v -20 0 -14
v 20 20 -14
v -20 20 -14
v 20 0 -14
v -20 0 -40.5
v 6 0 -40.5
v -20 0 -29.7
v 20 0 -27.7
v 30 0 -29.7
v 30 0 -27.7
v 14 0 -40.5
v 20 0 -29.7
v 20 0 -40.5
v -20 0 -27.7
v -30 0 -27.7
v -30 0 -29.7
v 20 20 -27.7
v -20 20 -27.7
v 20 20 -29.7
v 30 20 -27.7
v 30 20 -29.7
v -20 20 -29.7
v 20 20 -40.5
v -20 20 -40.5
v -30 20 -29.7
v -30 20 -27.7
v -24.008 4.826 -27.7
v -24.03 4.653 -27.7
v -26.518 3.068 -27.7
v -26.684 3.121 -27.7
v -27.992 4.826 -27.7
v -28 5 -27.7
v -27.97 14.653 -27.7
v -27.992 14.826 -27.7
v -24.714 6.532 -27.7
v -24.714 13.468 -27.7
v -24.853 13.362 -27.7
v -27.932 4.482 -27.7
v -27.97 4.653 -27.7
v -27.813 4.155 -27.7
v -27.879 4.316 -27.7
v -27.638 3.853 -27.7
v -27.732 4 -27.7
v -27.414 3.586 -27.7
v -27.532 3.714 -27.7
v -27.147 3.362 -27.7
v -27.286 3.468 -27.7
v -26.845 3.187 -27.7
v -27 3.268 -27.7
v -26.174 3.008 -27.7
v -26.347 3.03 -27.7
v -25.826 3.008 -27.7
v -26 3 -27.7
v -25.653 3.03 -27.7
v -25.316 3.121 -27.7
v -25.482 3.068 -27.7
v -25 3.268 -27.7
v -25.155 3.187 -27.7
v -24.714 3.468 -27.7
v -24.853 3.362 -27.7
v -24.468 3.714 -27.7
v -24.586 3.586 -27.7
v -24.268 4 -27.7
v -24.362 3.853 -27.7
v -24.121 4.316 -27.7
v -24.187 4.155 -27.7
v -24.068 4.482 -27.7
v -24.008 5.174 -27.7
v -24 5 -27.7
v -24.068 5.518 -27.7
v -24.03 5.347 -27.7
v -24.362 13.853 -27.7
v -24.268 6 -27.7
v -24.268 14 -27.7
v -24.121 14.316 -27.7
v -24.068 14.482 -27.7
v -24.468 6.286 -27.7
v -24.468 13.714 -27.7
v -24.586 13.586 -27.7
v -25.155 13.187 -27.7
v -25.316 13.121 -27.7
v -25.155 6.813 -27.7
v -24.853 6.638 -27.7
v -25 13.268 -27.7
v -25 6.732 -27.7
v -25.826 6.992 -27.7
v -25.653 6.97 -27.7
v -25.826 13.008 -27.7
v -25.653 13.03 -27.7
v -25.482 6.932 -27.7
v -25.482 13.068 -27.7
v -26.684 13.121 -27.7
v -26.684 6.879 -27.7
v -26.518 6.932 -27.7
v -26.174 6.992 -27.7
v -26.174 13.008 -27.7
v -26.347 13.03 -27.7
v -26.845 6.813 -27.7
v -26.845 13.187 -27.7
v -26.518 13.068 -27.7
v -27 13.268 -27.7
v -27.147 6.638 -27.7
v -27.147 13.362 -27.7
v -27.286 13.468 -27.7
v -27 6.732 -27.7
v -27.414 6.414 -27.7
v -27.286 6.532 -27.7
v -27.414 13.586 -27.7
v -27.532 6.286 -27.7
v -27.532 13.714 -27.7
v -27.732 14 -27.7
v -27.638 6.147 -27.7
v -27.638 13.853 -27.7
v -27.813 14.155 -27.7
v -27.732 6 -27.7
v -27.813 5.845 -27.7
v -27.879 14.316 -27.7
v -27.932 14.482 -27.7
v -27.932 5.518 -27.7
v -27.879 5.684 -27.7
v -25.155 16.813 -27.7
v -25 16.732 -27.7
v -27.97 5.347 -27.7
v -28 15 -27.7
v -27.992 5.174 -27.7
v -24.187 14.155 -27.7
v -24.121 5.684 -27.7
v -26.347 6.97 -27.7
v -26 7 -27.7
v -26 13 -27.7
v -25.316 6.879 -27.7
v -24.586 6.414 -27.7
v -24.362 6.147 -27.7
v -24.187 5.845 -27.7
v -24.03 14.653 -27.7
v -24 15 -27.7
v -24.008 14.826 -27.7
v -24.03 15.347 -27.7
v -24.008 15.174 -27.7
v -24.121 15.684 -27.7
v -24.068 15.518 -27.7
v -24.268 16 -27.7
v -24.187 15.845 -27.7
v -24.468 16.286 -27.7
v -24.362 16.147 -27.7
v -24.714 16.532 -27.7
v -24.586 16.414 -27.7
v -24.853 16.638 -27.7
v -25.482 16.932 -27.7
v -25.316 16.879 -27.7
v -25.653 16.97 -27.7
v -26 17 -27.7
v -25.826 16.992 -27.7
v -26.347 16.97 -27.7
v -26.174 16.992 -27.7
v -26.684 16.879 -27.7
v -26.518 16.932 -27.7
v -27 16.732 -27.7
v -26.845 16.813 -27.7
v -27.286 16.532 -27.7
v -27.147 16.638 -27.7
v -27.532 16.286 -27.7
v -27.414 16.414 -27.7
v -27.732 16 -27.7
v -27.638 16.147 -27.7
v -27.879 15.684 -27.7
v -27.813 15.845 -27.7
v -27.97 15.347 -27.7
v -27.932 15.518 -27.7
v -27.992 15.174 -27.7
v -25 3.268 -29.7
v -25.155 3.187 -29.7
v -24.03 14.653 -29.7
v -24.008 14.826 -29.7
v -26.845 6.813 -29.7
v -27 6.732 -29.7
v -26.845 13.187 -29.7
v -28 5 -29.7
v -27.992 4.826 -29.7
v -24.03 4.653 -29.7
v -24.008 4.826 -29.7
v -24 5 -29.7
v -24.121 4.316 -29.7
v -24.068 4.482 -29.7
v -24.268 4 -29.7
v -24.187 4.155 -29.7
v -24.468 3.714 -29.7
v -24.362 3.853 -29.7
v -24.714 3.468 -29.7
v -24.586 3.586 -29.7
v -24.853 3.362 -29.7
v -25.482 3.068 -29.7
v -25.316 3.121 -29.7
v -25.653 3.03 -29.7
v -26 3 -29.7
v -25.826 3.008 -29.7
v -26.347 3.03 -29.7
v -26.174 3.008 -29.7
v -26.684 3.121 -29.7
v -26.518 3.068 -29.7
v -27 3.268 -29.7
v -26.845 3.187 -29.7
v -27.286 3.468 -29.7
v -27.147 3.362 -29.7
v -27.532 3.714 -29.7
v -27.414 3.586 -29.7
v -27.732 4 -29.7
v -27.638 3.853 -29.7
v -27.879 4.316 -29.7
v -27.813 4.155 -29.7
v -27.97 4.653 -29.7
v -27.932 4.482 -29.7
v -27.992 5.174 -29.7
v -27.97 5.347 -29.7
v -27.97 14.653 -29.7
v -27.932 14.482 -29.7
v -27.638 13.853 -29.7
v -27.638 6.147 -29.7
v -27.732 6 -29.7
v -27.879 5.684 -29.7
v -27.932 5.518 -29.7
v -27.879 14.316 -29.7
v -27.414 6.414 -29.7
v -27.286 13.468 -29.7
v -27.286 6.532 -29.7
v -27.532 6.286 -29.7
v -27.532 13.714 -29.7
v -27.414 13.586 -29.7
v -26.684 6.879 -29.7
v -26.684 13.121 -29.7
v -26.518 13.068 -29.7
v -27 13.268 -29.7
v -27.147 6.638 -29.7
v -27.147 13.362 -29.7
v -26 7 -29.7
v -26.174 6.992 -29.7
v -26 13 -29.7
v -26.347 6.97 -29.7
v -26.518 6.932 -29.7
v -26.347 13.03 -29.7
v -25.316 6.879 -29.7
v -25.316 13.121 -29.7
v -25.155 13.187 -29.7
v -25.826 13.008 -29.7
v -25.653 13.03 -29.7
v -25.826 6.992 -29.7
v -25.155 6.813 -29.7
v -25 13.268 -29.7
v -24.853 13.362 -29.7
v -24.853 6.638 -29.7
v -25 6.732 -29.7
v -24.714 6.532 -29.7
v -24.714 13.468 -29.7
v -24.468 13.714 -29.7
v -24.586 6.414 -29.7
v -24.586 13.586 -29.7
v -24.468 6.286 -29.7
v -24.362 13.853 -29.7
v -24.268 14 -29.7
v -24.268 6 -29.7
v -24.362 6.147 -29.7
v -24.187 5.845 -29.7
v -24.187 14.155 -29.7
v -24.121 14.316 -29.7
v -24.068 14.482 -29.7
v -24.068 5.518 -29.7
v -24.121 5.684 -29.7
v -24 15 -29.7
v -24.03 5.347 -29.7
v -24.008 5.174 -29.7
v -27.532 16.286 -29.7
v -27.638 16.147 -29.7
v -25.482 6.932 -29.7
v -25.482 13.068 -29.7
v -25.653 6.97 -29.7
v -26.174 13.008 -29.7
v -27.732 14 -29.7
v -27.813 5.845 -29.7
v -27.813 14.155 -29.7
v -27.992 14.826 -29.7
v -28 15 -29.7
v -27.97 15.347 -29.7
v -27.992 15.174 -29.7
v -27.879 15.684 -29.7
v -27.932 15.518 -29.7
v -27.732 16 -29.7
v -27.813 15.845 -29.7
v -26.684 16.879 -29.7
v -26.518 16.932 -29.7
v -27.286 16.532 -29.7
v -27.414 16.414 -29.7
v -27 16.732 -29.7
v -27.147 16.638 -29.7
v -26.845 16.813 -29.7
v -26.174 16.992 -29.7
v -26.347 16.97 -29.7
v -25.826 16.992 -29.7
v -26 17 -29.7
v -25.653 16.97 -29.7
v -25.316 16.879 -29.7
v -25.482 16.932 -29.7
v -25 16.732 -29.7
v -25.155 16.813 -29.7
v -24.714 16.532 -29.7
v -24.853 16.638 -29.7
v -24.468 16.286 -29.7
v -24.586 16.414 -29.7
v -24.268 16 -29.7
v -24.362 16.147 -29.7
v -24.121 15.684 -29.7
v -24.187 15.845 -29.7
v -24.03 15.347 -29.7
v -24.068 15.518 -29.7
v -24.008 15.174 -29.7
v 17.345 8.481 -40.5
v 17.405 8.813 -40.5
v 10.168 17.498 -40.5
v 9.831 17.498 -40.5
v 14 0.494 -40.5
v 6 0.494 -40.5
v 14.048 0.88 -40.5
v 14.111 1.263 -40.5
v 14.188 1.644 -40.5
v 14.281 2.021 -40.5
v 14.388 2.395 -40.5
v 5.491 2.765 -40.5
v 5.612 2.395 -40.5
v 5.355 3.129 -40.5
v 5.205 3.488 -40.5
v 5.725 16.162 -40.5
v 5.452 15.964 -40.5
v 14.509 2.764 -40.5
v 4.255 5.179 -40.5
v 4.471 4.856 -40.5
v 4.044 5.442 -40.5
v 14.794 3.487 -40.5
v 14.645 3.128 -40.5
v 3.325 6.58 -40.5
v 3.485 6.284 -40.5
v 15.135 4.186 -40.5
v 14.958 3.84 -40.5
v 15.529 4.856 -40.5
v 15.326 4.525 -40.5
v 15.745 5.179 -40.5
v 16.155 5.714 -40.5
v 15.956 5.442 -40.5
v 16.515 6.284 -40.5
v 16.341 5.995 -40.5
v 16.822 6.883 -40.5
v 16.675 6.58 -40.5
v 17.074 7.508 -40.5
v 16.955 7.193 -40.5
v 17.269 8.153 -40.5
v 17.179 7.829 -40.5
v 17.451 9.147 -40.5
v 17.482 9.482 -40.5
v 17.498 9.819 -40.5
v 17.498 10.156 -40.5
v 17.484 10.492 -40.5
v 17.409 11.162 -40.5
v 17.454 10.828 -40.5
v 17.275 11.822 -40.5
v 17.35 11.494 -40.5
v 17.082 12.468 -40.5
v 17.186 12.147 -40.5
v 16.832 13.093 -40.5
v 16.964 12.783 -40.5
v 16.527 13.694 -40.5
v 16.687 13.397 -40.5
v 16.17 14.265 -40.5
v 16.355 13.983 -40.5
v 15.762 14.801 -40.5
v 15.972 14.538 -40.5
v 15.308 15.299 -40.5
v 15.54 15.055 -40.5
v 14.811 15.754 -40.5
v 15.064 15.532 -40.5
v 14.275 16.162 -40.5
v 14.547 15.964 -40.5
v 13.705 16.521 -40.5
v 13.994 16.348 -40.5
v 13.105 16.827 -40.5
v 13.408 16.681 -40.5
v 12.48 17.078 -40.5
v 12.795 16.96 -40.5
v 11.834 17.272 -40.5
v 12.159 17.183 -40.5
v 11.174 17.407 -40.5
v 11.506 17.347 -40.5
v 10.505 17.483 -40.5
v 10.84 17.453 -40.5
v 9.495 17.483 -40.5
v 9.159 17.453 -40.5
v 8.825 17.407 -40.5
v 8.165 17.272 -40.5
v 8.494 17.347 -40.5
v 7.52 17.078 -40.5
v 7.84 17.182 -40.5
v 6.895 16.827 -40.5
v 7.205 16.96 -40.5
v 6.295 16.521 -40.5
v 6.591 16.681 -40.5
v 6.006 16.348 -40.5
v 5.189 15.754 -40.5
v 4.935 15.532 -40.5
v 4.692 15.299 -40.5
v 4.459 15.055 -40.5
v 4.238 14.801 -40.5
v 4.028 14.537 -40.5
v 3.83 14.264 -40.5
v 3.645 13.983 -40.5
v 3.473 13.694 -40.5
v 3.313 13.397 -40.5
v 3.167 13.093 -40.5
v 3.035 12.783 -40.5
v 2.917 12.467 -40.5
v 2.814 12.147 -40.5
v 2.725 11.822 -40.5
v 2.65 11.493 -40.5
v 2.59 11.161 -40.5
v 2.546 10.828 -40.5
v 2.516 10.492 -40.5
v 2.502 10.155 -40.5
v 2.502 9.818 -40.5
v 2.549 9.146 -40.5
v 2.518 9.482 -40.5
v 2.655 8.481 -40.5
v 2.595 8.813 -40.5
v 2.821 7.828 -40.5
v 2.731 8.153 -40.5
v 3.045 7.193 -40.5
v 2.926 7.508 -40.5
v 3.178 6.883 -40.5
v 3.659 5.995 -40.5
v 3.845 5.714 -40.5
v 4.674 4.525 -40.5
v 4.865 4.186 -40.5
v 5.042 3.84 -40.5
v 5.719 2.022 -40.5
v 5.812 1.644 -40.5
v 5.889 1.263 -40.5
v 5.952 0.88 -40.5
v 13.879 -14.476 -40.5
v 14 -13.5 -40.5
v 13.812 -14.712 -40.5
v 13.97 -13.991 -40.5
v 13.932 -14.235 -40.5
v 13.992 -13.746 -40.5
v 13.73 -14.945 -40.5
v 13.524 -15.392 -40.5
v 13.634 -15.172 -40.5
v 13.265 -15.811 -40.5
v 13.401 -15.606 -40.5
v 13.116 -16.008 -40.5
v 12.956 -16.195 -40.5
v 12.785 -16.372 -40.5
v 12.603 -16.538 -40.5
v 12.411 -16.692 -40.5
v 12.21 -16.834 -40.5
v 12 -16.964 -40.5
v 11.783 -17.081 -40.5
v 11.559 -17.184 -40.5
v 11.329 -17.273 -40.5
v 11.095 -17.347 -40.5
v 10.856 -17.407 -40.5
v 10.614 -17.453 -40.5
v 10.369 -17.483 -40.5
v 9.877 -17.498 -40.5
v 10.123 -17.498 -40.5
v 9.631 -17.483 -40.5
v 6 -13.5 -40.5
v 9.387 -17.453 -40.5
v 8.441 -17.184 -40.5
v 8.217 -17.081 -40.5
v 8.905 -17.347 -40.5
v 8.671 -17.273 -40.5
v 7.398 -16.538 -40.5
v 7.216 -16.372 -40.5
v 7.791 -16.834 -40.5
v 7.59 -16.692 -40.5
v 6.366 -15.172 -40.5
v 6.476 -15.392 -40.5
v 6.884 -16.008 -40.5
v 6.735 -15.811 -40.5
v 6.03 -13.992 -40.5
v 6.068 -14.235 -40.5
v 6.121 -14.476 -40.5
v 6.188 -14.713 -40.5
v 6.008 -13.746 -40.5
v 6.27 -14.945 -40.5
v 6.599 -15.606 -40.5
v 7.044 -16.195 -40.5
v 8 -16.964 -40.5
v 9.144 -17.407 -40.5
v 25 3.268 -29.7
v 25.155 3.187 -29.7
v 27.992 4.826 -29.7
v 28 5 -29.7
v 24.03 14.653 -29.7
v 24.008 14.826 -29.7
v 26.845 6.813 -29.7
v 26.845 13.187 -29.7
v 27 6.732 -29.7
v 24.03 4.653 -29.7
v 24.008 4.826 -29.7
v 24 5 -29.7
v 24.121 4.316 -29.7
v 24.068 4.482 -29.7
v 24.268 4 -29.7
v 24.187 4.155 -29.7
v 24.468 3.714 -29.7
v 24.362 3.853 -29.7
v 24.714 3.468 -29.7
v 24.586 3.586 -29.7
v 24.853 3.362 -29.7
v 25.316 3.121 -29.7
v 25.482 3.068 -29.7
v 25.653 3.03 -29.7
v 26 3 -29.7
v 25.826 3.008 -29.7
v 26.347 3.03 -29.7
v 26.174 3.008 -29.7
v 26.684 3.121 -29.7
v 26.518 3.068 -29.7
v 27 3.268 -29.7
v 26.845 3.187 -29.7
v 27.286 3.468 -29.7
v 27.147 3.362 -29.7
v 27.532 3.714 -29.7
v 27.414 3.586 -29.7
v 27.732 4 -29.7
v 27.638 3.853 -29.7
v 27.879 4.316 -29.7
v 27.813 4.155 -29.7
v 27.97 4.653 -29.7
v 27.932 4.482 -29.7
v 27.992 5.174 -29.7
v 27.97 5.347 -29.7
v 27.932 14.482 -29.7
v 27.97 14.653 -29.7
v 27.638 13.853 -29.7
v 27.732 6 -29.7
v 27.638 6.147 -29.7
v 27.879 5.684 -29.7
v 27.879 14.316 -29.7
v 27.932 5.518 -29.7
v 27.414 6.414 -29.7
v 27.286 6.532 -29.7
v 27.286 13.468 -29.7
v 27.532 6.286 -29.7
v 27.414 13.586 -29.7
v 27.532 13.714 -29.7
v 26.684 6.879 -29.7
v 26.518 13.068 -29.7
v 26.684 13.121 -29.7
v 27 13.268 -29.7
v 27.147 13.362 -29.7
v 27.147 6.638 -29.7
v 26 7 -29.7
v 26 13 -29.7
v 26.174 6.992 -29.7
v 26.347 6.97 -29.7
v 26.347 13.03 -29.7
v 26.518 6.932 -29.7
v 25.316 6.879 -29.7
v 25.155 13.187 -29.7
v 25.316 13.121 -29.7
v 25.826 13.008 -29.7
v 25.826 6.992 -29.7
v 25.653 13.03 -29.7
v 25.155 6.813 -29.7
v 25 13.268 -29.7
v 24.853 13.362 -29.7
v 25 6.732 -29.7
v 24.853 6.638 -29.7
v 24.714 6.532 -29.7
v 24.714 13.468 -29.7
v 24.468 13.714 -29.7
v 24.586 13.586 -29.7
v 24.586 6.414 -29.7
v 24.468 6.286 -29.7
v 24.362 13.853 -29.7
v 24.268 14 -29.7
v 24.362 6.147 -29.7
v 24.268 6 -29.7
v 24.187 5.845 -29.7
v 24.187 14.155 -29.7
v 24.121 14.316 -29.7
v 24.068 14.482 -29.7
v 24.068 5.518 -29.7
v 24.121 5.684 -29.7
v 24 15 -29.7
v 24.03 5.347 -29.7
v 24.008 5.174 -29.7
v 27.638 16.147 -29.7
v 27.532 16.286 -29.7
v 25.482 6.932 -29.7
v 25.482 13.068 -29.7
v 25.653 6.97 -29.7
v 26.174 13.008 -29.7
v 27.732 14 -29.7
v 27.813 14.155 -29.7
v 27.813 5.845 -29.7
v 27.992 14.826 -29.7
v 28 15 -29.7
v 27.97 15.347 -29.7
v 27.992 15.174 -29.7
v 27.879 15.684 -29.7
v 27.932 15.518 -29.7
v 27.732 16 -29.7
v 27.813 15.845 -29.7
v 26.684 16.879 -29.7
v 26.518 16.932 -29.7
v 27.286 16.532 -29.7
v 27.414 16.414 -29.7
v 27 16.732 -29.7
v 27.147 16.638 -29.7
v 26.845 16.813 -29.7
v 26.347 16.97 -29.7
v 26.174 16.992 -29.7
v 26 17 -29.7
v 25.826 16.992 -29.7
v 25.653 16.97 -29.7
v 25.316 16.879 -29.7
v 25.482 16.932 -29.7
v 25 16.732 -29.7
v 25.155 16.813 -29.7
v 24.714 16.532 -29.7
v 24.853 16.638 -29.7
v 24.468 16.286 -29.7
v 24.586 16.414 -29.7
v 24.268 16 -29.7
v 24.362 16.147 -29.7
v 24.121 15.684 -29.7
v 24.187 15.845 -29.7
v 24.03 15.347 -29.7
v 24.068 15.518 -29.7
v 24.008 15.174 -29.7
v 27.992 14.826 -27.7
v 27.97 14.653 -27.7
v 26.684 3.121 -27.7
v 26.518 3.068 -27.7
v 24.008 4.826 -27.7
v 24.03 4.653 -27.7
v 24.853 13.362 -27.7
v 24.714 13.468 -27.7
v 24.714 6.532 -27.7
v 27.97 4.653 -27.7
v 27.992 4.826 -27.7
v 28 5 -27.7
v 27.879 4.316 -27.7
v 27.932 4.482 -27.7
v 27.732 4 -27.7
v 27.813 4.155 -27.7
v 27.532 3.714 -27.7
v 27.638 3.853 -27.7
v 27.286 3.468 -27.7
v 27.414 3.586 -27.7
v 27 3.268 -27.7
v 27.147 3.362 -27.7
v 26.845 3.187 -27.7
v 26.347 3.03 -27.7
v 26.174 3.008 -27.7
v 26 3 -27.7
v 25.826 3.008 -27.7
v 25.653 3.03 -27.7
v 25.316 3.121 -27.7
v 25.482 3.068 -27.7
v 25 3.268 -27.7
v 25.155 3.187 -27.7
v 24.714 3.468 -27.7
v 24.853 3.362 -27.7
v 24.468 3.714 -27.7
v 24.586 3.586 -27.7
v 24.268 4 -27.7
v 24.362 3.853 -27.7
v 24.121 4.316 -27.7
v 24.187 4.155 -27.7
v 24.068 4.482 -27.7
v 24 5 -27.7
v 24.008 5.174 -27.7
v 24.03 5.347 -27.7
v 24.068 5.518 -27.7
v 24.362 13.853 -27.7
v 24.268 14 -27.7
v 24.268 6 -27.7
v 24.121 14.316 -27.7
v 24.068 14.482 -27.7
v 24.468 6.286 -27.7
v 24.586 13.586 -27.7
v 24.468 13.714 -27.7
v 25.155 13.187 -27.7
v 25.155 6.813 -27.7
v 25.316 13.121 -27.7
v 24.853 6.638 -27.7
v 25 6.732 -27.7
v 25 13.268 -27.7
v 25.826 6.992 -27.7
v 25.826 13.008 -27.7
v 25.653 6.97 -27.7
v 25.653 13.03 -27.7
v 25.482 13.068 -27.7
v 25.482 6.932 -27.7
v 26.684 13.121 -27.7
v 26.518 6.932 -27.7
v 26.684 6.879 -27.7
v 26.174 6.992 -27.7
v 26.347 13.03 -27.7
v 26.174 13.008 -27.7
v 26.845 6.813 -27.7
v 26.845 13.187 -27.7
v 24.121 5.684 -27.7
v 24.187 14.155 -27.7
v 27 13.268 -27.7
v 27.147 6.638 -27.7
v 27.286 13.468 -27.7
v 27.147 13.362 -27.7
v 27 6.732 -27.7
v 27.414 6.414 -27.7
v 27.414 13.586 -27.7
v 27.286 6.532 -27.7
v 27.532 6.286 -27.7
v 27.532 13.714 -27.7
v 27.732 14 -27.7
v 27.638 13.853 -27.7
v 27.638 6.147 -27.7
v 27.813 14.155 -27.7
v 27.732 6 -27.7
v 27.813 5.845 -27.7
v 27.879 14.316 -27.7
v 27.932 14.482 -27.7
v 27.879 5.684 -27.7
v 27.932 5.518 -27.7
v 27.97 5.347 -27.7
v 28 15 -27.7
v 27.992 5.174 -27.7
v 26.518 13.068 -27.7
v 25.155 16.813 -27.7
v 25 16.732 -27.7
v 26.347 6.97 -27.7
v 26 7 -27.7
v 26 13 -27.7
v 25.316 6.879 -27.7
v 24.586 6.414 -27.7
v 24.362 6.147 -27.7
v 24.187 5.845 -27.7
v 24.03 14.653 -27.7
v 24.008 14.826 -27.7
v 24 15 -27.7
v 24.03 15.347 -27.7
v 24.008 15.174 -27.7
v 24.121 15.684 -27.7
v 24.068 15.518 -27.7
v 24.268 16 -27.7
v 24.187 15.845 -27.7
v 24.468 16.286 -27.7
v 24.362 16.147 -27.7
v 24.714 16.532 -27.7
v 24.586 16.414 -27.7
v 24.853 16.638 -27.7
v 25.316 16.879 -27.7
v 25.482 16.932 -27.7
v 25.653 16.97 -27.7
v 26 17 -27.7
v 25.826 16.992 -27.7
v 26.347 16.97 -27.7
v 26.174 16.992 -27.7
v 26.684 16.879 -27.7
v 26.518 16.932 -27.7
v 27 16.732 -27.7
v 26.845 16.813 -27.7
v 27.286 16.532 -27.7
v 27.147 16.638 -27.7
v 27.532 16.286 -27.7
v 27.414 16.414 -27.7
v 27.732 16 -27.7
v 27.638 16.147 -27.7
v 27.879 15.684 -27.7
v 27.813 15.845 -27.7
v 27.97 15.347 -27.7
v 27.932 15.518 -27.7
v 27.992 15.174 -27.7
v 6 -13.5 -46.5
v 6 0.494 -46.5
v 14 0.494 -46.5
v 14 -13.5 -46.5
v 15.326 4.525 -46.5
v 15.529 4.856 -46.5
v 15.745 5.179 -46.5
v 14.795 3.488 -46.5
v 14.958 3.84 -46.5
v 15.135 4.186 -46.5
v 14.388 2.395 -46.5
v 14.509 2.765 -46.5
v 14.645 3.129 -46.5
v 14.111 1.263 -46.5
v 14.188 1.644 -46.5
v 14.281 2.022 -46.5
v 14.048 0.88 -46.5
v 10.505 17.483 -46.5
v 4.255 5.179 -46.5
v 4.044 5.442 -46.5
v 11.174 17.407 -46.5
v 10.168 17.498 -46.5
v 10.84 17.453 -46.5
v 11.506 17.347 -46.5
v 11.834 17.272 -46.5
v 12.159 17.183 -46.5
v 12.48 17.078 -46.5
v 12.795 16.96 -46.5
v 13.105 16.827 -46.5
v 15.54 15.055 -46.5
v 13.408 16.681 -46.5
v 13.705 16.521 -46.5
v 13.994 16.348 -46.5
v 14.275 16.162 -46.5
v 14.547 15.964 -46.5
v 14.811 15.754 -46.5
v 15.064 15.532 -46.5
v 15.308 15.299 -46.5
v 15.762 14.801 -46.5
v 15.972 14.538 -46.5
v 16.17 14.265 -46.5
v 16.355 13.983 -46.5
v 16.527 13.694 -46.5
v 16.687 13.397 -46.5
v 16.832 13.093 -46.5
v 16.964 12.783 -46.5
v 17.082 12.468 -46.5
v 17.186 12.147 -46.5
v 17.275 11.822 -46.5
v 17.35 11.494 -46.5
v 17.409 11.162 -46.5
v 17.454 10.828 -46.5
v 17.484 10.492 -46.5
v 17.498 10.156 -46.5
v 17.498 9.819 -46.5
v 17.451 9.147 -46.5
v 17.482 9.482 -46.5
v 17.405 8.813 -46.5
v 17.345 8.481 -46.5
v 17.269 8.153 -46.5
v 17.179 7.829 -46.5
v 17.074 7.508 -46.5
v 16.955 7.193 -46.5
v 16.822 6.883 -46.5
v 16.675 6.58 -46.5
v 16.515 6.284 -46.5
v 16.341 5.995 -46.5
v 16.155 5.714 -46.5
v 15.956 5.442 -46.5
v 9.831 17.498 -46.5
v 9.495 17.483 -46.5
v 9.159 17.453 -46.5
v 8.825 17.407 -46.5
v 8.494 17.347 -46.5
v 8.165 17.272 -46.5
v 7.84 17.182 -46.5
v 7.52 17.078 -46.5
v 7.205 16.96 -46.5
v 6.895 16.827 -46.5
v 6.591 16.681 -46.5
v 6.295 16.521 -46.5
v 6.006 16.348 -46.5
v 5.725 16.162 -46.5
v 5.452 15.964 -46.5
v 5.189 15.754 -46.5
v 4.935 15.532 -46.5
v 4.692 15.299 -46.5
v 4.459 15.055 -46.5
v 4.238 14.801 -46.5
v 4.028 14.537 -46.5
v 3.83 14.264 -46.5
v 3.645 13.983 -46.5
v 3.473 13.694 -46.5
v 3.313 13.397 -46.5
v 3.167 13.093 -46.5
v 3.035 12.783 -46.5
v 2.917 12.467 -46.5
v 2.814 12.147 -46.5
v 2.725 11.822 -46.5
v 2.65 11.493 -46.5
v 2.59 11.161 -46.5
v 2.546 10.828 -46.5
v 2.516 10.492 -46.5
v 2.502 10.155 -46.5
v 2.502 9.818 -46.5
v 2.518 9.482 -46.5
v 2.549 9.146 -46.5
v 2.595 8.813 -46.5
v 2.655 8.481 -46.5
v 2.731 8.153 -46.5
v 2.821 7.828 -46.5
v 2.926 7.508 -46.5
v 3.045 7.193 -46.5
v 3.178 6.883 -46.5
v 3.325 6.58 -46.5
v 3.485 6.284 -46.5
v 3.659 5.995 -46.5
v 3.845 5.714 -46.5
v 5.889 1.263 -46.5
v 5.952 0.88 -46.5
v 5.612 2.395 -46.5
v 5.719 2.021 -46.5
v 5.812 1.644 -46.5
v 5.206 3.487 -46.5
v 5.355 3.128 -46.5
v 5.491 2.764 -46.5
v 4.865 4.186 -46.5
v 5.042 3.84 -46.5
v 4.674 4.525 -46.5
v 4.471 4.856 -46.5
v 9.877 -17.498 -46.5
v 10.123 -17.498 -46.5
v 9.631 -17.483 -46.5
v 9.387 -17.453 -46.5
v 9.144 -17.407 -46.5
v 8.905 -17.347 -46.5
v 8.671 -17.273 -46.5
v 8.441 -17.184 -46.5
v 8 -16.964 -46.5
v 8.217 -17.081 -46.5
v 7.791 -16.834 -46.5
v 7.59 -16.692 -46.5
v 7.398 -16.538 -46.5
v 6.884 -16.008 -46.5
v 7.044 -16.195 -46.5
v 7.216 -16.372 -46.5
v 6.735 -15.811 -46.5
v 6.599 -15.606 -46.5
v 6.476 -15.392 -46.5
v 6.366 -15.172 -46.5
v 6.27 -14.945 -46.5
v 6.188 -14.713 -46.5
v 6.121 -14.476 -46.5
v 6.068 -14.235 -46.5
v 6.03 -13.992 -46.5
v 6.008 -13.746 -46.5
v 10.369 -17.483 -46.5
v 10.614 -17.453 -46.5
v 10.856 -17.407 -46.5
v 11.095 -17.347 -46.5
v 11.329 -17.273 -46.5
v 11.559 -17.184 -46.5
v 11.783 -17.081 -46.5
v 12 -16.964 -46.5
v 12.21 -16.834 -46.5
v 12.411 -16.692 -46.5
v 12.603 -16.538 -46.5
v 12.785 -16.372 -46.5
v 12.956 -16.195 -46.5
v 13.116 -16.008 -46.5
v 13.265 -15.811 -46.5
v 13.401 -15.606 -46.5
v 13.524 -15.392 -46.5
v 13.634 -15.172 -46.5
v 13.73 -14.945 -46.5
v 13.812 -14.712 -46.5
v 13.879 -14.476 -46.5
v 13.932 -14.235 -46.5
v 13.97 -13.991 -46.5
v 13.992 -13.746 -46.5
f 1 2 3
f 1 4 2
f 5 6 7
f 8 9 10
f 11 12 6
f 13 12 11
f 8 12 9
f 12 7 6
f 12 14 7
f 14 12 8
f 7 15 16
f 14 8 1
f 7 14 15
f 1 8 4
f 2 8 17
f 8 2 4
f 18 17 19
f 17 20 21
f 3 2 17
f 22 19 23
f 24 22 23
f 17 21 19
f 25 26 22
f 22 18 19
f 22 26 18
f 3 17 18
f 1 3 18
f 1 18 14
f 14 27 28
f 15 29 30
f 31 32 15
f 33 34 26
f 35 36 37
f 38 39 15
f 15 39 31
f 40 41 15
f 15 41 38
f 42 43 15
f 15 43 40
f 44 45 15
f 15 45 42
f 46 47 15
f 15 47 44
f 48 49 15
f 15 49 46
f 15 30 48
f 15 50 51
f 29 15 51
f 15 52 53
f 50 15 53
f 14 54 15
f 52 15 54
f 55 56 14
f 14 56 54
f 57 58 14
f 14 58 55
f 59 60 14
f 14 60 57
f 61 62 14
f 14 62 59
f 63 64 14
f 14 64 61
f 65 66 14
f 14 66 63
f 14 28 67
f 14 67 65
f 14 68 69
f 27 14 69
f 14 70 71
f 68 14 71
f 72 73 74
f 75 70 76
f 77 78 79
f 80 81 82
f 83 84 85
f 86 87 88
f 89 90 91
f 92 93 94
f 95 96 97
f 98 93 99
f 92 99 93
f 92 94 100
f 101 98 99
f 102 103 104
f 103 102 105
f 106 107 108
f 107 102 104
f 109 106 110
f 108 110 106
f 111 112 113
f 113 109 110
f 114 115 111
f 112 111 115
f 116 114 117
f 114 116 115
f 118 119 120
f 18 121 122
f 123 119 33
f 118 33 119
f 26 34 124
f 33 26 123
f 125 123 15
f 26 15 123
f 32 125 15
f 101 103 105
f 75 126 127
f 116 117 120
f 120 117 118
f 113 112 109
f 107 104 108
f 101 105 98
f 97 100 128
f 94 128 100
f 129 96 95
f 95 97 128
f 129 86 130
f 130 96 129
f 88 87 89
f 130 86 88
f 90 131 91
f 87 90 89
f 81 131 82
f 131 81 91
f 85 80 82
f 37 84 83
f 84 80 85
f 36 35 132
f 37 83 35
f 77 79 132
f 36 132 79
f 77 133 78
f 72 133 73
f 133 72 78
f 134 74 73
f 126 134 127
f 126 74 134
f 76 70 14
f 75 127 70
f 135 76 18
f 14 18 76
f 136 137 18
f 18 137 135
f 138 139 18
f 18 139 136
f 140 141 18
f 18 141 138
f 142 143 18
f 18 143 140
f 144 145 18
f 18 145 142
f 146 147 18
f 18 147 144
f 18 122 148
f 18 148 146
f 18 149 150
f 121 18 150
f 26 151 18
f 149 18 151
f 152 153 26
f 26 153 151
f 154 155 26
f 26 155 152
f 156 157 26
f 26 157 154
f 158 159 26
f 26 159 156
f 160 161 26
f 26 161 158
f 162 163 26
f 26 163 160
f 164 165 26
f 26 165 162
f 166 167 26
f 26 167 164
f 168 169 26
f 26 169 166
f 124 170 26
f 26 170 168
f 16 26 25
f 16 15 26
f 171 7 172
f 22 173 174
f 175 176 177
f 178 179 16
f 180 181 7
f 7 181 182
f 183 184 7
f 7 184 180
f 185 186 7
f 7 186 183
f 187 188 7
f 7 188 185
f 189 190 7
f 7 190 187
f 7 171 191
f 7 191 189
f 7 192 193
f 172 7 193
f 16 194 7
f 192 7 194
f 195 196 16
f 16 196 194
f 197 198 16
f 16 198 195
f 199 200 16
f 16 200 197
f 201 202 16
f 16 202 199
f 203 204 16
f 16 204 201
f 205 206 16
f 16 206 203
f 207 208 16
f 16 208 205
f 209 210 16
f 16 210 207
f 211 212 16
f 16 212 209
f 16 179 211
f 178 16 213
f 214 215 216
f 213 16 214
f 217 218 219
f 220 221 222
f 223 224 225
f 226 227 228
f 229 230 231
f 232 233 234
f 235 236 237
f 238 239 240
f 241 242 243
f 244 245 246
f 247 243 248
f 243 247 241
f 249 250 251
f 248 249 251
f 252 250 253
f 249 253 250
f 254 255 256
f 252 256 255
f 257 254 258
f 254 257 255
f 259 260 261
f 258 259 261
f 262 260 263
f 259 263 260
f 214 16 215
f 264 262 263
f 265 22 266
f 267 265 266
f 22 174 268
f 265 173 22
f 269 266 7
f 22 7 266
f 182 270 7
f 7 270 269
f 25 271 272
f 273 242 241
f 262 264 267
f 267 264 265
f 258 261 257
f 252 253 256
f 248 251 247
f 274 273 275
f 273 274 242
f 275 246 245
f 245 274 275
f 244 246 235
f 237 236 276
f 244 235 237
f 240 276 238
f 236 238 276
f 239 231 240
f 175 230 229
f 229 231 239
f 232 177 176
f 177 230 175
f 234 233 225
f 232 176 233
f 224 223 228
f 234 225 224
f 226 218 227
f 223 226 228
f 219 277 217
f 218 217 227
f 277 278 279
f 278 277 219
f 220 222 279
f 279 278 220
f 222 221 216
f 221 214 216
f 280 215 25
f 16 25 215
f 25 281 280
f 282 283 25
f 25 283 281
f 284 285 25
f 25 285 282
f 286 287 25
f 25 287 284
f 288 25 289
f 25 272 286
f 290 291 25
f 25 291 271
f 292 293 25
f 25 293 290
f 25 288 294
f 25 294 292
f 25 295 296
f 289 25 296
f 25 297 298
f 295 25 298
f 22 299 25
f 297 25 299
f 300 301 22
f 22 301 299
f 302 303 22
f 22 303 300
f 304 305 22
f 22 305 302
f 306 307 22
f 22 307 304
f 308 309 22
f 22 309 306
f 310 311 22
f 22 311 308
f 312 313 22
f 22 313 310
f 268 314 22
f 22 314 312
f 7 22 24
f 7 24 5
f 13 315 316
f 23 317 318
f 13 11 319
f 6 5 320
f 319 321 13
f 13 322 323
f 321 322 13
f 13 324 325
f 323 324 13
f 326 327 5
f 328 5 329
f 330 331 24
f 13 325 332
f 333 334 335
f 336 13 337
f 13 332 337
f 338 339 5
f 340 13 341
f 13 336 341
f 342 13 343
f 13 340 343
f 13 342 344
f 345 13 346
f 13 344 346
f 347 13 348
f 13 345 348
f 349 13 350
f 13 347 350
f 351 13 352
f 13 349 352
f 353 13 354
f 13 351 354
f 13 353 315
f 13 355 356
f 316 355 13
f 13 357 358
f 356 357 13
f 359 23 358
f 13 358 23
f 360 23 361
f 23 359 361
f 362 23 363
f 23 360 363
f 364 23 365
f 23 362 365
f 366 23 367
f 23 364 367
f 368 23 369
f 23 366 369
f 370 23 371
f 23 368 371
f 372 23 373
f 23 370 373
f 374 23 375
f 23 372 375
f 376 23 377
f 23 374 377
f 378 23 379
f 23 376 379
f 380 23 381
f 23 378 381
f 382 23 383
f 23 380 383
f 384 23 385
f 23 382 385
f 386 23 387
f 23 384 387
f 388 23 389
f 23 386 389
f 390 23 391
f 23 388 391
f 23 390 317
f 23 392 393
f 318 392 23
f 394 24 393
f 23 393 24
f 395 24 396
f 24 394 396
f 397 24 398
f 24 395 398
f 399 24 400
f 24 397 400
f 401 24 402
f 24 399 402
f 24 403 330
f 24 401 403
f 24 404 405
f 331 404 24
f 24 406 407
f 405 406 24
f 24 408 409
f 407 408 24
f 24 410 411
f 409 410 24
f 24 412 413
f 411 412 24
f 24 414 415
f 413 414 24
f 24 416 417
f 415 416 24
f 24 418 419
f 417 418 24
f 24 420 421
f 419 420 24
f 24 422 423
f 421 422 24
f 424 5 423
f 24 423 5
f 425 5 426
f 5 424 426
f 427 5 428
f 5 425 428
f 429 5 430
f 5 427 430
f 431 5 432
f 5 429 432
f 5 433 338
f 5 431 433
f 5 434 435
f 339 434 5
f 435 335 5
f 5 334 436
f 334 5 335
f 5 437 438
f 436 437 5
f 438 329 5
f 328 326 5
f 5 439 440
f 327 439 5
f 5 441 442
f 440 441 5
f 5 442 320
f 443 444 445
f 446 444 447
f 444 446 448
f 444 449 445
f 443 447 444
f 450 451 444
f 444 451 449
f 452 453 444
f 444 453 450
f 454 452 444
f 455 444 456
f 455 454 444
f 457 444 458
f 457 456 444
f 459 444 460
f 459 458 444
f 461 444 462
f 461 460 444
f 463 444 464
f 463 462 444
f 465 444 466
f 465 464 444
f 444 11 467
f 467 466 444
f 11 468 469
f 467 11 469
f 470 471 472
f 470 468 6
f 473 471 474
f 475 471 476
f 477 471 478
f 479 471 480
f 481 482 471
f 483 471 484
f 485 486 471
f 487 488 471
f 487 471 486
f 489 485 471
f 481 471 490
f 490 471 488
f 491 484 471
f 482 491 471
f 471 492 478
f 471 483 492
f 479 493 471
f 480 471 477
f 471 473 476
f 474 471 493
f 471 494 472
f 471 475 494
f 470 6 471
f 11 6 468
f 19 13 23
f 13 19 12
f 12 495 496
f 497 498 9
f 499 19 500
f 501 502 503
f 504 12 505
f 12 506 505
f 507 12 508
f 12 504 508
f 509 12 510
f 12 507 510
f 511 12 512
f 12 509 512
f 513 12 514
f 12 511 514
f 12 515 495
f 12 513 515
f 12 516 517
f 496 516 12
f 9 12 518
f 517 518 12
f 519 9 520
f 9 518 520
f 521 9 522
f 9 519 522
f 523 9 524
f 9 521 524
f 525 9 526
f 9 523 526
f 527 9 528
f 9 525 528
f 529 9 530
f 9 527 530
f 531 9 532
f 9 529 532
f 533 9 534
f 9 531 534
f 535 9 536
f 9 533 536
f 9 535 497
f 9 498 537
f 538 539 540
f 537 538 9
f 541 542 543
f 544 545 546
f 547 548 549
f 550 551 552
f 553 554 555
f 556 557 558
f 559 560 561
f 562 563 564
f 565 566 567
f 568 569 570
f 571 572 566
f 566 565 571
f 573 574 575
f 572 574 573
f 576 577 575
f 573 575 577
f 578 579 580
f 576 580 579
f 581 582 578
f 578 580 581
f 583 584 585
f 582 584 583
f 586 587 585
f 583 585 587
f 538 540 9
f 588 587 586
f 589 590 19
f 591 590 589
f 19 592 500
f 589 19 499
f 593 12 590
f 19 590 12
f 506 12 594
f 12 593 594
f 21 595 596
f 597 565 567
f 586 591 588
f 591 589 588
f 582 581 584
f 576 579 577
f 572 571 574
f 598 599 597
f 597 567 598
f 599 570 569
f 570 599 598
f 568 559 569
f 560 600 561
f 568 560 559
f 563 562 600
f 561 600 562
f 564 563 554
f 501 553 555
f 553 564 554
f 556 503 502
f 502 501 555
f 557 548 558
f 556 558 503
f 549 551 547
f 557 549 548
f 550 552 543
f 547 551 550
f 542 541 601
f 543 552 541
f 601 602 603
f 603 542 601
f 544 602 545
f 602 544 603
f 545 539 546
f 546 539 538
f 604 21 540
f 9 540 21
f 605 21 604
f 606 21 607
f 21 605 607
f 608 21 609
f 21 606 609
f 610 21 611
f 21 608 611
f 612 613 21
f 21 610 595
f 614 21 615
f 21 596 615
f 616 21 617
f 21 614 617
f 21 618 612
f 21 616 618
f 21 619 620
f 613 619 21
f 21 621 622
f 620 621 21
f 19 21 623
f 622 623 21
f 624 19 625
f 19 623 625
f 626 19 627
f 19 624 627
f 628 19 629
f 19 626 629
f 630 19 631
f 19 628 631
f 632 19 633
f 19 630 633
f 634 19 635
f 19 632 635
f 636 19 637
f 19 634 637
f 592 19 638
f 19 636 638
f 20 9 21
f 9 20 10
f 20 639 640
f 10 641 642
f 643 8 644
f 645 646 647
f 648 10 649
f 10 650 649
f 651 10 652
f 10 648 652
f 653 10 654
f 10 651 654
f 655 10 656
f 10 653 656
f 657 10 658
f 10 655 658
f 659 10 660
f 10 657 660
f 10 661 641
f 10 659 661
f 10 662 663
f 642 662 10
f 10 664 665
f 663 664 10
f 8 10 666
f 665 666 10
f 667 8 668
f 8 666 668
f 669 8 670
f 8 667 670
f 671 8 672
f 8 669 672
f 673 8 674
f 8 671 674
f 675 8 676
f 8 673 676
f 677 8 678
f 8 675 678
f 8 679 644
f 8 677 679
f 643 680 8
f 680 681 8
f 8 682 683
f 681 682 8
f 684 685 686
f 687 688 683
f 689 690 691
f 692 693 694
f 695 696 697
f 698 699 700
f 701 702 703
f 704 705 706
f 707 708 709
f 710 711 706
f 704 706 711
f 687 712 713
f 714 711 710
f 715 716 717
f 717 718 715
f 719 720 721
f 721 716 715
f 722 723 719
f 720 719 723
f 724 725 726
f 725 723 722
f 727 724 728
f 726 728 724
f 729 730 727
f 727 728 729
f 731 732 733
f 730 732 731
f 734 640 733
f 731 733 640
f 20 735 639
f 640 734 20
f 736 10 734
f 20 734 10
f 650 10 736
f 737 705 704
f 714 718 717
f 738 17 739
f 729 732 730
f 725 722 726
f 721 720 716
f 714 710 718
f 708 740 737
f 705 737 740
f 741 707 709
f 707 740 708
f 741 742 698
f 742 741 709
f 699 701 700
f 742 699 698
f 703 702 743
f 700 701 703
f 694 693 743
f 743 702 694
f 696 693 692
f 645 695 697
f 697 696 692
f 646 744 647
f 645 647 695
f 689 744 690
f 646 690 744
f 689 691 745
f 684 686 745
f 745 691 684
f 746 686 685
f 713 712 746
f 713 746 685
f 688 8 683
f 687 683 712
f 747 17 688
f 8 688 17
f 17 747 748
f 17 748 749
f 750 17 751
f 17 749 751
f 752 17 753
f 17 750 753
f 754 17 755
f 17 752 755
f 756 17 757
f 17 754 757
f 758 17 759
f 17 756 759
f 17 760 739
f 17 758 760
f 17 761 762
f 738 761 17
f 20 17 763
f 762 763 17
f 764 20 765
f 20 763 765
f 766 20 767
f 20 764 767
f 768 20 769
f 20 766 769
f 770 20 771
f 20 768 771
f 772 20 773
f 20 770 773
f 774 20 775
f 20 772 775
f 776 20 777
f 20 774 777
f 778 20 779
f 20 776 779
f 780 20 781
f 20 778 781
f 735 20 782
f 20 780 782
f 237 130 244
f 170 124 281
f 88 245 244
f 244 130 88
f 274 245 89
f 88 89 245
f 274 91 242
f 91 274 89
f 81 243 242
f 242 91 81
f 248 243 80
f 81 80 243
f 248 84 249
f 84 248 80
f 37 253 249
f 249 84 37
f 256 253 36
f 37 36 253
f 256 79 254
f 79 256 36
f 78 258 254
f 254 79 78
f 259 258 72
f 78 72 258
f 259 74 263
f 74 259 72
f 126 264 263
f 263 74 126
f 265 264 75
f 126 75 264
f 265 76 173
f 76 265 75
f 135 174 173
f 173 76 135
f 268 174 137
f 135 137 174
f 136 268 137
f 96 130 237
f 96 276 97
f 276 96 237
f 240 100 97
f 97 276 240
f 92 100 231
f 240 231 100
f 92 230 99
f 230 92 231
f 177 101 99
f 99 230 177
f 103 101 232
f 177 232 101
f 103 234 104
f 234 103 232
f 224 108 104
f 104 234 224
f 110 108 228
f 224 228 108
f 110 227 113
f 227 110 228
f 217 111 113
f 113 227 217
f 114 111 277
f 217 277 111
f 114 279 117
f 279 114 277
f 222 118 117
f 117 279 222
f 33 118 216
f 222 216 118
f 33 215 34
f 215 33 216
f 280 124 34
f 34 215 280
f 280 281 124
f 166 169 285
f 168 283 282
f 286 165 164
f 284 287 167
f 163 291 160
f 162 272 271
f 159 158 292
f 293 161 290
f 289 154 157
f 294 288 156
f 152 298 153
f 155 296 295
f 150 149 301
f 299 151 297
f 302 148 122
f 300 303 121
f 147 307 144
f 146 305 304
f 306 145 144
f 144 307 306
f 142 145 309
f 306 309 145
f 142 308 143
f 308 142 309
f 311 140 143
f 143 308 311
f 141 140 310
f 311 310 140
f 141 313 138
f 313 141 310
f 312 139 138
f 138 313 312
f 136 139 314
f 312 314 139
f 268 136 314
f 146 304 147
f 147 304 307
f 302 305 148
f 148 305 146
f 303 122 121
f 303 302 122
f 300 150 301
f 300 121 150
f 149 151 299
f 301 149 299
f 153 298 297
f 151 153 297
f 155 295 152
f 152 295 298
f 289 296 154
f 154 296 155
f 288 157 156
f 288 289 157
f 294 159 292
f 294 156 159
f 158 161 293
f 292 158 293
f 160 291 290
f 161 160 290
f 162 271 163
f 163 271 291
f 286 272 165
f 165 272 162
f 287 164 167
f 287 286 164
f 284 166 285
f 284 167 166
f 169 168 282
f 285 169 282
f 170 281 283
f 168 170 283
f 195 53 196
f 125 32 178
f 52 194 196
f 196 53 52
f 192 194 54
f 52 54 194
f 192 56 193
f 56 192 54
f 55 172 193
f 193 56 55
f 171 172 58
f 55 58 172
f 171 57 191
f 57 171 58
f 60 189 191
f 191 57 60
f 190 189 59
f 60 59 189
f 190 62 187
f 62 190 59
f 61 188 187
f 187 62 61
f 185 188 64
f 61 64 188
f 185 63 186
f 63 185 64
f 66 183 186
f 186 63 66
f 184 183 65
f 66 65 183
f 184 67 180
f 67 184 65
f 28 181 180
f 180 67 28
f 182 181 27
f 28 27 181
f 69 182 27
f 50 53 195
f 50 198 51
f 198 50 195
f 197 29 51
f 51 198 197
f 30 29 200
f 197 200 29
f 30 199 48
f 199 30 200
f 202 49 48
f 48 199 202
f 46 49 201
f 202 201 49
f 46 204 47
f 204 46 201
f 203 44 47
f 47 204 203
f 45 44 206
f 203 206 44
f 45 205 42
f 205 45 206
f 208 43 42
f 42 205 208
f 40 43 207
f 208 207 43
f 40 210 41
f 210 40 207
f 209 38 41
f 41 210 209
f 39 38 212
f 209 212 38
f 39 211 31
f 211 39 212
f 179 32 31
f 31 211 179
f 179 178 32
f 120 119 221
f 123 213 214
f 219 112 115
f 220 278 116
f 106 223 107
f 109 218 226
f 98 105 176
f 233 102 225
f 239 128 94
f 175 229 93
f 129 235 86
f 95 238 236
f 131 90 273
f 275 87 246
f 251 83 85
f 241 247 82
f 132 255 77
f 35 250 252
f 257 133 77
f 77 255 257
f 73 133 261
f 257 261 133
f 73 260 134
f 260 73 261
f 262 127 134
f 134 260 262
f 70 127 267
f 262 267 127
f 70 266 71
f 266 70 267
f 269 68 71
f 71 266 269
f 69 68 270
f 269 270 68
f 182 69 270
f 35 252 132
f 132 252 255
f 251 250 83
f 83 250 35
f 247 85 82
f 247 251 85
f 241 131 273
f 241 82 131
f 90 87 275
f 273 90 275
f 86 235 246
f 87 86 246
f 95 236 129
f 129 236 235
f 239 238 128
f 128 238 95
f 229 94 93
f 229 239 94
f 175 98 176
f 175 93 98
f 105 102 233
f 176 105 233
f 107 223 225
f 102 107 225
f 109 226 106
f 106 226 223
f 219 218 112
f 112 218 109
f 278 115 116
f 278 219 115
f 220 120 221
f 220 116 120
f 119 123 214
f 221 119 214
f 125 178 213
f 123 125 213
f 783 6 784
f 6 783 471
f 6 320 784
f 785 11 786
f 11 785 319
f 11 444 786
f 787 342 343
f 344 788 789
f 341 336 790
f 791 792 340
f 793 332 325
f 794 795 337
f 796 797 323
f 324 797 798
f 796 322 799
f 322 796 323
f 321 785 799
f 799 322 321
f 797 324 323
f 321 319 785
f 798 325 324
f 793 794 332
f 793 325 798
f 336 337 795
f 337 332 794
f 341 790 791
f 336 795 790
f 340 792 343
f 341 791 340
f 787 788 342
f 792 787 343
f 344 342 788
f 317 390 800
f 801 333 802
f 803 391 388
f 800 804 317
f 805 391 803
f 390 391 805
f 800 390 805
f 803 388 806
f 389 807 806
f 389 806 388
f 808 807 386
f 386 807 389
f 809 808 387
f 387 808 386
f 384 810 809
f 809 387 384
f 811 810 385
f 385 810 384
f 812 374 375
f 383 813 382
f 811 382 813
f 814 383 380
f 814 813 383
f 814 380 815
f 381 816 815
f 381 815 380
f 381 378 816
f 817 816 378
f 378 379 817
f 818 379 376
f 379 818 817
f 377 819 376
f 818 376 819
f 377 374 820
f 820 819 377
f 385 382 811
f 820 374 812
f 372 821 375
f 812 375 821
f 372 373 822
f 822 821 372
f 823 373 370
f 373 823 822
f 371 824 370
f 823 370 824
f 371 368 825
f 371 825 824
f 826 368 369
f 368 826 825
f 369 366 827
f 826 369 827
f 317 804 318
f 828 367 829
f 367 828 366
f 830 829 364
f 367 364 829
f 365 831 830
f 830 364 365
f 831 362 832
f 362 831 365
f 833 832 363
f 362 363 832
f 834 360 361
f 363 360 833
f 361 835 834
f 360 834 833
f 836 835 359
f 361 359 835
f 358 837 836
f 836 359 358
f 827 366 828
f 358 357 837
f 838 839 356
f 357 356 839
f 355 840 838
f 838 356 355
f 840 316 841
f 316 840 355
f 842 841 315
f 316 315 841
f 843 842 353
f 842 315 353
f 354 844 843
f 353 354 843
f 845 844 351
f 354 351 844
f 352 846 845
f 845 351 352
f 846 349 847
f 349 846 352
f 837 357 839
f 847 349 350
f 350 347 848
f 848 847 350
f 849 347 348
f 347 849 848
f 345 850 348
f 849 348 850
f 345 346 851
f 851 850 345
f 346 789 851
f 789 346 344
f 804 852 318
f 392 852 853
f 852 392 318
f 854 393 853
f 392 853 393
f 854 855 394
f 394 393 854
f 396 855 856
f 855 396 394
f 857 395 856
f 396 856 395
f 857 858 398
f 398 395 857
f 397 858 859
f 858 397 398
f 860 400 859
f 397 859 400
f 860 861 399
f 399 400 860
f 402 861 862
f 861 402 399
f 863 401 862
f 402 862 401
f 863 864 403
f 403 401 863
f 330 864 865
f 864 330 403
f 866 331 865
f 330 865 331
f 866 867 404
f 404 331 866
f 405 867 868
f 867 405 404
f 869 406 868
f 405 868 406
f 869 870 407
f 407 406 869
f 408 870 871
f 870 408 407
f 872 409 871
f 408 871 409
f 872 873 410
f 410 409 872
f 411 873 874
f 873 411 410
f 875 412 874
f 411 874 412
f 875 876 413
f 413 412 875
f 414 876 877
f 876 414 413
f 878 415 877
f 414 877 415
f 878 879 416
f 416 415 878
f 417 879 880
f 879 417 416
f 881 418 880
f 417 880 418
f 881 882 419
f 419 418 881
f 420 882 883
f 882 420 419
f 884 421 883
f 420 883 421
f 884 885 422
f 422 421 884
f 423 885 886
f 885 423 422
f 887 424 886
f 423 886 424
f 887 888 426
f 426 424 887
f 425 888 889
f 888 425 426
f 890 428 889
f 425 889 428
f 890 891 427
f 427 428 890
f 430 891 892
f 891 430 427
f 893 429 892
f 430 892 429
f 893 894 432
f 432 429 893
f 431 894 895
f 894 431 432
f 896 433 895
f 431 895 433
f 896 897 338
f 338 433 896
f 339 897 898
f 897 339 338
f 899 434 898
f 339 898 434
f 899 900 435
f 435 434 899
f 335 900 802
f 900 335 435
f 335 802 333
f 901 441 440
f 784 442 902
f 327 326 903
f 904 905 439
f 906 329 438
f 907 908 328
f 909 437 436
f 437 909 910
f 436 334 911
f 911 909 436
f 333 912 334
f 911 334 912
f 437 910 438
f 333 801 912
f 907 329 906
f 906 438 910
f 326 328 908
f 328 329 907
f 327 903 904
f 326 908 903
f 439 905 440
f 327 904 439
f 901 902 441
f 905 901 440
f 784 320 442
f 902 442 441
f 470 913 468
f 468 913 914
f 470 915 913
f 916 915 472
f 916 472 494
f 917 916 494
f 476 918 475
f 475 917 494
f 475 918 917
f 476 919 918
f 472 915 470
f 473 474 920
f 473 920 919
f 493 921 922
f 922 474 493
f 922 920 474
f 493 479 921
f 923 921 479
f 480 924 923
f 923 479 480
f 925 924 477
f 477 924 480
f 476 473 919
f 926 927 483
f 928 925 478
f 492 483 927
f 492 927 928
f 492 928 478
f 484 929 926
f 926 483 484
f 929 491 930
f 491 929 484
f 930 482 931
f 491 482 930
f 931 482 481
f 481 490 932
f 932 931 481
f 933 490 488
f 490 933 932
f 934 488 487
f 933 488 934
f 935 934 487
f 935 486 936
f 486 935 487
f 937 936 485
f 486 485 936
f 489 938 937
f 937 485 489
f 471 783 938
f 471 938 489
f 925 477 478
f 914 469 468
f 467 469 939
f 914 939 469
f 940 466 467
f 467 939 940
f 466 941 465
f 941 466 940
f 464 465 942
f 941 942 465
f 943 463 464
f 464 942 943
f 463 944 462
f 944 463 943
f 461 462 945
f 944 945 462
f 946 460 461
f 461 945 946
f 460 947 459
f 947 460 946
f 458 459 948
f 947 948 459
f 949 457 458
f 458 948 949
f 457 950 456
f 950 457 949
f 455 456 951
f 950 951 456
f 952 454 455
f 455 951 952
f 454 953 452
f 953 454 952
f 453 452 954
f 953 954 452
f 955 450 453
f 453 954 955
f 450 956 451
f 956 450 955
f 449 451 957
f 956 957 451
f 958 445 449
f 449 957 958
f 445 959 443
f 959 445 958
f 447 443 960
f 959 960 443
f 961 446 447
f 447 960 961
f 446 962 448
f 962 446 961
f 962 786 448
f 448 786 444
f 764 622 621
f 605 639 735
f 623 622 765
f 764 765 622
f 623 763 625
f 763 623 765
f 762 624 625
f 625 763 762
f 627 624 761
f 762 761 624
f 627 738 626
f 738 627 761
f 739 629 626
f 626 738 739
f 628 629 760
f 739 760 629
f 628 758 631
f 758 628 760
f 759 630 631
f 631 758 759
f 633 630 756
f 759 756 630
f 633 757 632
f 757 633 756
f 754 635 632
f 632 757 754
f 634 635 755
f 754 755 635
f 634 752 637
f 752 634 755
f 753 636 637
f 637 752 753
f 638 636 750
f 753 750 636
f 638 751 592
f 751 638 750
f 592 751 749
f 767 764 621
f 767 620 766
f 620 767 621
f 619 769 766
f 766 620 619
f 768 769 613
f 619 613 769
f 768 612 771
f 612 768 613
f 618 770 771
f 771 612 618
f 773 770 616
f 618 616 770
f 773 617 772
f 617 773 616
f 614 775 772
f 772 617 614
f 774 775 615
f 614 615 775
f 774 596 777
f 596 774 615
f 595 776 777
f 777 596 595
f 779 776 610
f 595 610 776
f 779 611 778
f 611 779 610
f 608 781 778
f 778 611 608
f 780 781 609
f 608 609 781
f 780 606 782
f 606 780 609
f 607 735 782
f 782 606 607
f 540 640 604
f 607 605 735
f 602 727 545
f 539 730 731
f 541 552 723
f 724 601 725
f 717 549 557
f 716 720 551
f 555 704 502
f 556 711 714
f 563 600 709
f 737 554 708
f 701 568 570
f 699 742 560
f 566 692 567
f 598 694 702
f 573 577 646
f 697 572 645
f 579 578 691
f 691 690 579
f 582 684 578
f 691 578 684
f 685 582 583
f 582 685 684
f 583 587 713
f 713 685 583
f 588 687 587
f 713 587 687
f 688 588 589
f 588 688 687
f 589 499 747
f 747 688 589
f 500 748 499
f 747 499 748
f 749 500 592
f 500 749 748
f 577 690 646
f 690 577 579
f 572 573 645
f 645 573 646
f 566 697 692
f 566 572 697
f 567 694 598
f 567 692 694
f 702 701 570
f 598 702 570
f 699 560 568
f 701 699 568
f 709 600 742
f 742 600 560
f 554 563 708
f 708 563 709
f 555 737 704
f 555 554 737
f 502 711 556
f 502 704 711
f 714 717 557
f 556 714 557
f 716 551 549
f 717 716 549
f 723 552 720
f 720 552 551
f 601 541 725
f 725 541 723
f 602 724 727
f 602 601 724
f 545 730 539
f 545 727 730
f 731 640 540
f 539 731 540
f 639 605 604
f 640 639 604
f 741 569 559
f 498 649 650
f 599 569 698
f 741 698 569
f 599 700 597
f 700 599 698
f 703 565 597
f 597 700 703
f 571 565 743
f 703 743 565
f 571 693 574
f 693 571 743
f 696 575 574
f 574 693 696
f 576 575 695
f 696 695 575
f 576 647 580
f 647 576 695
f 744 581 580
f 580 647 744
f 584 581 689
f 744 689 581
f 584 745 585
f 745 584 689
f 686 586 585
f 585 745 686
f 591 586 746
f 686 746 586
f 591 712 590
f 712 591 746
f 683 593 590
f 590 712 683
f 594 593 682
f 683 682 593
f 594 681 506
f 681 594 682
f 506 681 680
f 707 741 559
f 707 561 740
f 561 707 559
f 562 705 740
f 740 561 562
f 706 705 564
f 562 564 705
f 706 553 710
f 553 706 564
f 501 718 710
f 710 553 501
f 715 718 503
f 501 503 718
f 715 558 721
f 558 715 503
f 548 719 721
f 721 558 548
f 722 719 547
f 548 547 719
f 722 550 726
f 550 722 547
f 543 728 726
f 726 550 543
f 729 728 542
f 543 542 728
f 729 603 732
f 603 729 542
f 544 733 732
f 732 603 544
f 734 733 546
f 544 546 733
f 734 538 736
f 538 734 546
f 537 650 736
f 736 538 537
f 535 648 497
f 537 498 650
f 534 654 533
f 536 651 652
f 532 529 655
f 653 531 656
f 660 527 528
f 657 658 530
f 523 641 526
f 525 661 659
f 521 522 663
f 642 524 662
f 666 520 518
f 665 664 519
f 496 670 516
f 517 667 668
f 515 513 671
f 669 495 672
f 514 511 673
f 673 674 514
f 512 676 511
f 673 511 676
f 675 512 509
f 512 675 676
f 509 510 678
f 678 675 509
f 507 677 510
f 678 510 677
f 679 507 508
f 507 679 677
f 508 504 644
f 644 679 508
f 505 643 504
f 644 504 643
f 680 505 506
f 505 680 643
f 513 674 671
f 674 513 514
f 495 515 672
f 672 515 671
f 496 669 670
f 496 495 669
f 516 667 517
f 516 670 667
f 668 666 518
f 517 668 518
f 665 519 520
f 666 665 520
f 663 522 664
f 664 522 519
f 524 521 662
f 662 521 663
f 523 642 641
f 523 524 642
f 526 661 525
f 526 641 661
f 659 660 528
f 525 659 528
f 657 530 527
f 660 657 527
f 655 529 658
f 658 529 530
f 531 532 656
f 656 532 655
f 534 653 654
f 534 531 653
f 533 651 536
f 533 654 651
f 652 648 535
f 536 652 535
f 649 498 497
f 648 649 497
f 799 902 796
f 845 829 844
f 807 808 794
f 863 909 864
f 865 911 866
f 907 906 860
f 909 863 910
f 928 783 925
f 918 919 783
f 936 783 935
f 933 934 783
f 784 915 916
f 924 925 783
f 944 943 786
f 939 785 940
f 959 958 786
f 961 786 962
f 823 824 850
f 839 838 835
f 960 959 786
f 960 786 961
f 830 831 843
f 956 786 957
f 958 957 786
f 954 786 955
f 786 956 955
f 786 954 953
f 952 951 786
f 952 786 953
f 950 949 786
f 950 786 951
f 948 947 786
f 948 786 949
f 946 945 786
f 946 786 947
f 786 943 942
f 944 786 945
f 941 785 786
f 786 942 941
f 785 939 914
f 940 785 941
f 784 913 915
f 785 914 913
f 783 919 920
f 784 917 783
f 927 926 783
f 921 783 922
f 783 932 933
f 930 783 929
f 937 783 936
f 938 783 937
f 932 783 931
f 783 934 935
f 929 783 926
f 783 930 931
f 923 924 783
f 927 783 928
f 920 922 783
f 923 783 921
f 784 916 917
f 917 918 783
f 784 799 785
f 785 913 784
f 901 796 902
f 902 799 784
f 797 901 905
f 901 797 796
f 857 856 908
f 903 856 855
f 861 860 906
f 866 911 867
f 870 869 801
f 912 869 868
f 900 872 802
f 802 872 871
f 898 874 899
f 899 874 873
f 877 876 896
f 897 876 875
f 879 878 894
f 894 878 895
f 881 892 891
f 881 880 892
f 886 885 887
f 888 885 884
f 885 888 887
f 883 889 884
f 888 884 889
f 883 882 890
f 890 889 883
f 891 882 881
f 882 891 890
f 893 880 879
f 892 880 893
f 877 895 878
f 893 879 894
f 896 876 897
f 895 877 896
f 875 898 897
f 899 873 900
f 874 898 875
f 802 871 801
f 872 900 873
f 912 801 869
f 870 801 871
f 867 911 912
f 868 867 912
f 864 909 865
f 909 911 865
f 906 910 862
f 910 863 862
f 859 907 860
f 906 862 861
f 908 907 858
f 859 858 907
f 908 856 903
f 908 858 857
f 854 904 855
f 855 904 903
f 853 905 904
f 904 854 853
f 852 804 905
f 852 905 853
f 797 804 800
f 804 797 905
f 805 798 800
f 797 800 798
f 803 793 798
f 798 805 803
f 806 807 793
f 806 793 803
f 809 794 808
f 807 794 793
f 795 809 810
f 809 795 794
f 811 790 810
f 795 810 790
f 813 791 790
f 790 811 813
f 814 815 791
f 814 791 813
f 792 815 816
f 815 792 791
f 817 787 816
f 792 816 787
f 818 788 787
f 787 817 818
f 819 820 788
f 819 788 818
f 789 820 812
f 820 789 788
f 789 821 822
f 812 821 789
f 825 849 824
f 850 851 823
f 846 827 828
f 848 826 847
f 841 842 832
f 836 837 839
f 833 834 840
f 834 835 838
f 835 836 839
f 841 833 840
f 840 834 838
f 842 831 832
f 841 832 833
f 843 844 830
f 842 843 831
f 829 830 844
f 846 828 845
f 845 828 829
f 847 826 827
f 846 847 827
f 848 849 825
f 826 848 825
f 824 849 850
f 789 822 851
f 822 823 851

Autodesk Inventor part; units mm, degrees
ref_plane "YZ Plane" through (0, 0, 0) normal (1, 0, 0) x (0, 1, 0)
ref_plane "XZ Plane" through (0, 0, 0) normal (0, 1, 0) x (-1, 0, 0)
sketch "Sketch1" plane through (0, 0, 0) normal (0, 1, 0) x (-1, 0, 0)
  line L0 (-20, 0) -> (20, 0)
  line L1 (20, 0) -> (20, -40.5)
  line L2 (20, -40.5) -> (-20, -40.5)
  line L3 (-20, -40.5) -> (-20, 0)
  point P0 (0, 0)
  point P1 (0, -40.5)
  dimension "d0" = 40
  dimension "d1" = 40.5
extrude "Extrusion1" add sketch "Sketch1" along normal blind 20
sketch "Sketch2" plane through (20, 0, 0) normal (1, 0, 0) x (0, 0, -1)
  line L0 (27.7, 20) -> (29.7, 20)
  line L1 (29.7, 20) -> (29.7, 0)
  line L2 (29.7, 0) -> (27.7, 0)
  line L3 (27.7, 0) -> (27.7, 20)
  line L4 (40.5, 0) -> (40.5, 20) projected
  line L5 (0, 0) -> (0, 20) projected
  dimension "d4" = 2
  dimension "d31" = 27.7
extrude "Extrusion2" add sketch "Sketch2" along normal blind 10
sketch "Sketch3" plane through (20, 0, -29.7) normal (0, 0, -1) x (-1, 0, 0)
  circle A0 centre (-6, 15) radius 2
  line L0 (-10, 20) -> (-10, 0) projected
  line L1 (-10, 10) -> (0, 10)
  circle A1 centre (-6, 5) radius 2
  point P0 (20, 0)
  point P1 (-8, 6.7321)
  point P2 (-8, 3.2679)
  dimension "d9" = 4
  dimension "d13" = 5
  dimension "d33" = 4
extrude "Extrusion3" cut sketch "Sketch3" against normal up to next
sketch "Sketch4" plane through (20, 0, -40.5) normal (0, 0, -1) x (-1, 0, 0)
  circle A0 centre (10, 10) radius 3
  line L0 (0, 0) -> (0, 20) projected
  line L1 (0, 20) -> (40, 20) projected
  point P0 (20, 0)
  dimension "d16" = 6
  dimension "d17" = 10
  dimension "d18" = 10
extrude "Extrusion4" add sketch "Sketch4" along normal blind 6
mirror "Mirror1" about plane through (0, 0, 0) normal (1, 0, 0) of "Extrusion2", "Extrusion3"
ref_plane "Work Plane1" through (20, 0, -42.5) normal (0, 0, -1) x (-1, 0, 0)
sketch "Sketch6" plane through (20, 0, -40.5) normal (0, 0, -1) x (-1, 0, 0)
  line L0 (6, 0.4936) -> (6, -13.5)
  arc A0 (6, -13.5) -> (14, -13.5) centre (10, -13.5) ccw
  line L1 (14, -13.5) -> (14, 0.4936)
  arc A1 (15.7453, 5.1791) -> (14, 0.4936) centre (23.9461, -0.5435) ccw
  arc A2 (15.7453, 5.1791) -> (4.2547, 5.1791) centre (10, 10) ccw
  arc A3 (6, 0.4936) -> (4.2547, 5.1791) centre (-3.9461, -0.5435) ccw
  line L2 (14.2, 0.4832) -> (14.2, -13.5)
  arc A4 (5.8, -13.5) -> (14.2, -13.5) centre (10, -13.5) ccw
  line L3 (5.8, -13.5) -> (5.8, 0.4832)
  arc A5 (5.8, 0.4832) -> (4.0957, 5.0574) centre (-3.9461, -0.5435) ccw
  arc A6 (15.9043, 5.0574) -> (4.0957, 5.0574) centre (10, 10) ccw
  arc A7 (15.9043, 5.0574) -> (14.2, 0.4832) centre (23.9461, -0.5435) ccw
  circle A8 centre (10, 10) radius 3 projected
  point P0 (20, 0)
  dimension "d35" = 0.2
extrude "Extrusion6" add sketch "Sketch6" along normal blind 6 contours A3 A2 A1 L1 A0 L0
sketch "Sketch7" plane through (-20, 0, 0) normal (0, 0, 1) x (1, 0, 0)
  line L0 (0, 0) -> (40, 0) projected
  line L1 (40, 0) -> (40, 20) projected
  line L2 (0, 20) -> (40, 20) projected
  line L3 (0, 0) -> (0, 20) projected
  point P0 (20, 0)
extrude "Extrusion7" cut sketch "Sketch7" against normal blind 14
properties part number "Servo" material "PLA"
